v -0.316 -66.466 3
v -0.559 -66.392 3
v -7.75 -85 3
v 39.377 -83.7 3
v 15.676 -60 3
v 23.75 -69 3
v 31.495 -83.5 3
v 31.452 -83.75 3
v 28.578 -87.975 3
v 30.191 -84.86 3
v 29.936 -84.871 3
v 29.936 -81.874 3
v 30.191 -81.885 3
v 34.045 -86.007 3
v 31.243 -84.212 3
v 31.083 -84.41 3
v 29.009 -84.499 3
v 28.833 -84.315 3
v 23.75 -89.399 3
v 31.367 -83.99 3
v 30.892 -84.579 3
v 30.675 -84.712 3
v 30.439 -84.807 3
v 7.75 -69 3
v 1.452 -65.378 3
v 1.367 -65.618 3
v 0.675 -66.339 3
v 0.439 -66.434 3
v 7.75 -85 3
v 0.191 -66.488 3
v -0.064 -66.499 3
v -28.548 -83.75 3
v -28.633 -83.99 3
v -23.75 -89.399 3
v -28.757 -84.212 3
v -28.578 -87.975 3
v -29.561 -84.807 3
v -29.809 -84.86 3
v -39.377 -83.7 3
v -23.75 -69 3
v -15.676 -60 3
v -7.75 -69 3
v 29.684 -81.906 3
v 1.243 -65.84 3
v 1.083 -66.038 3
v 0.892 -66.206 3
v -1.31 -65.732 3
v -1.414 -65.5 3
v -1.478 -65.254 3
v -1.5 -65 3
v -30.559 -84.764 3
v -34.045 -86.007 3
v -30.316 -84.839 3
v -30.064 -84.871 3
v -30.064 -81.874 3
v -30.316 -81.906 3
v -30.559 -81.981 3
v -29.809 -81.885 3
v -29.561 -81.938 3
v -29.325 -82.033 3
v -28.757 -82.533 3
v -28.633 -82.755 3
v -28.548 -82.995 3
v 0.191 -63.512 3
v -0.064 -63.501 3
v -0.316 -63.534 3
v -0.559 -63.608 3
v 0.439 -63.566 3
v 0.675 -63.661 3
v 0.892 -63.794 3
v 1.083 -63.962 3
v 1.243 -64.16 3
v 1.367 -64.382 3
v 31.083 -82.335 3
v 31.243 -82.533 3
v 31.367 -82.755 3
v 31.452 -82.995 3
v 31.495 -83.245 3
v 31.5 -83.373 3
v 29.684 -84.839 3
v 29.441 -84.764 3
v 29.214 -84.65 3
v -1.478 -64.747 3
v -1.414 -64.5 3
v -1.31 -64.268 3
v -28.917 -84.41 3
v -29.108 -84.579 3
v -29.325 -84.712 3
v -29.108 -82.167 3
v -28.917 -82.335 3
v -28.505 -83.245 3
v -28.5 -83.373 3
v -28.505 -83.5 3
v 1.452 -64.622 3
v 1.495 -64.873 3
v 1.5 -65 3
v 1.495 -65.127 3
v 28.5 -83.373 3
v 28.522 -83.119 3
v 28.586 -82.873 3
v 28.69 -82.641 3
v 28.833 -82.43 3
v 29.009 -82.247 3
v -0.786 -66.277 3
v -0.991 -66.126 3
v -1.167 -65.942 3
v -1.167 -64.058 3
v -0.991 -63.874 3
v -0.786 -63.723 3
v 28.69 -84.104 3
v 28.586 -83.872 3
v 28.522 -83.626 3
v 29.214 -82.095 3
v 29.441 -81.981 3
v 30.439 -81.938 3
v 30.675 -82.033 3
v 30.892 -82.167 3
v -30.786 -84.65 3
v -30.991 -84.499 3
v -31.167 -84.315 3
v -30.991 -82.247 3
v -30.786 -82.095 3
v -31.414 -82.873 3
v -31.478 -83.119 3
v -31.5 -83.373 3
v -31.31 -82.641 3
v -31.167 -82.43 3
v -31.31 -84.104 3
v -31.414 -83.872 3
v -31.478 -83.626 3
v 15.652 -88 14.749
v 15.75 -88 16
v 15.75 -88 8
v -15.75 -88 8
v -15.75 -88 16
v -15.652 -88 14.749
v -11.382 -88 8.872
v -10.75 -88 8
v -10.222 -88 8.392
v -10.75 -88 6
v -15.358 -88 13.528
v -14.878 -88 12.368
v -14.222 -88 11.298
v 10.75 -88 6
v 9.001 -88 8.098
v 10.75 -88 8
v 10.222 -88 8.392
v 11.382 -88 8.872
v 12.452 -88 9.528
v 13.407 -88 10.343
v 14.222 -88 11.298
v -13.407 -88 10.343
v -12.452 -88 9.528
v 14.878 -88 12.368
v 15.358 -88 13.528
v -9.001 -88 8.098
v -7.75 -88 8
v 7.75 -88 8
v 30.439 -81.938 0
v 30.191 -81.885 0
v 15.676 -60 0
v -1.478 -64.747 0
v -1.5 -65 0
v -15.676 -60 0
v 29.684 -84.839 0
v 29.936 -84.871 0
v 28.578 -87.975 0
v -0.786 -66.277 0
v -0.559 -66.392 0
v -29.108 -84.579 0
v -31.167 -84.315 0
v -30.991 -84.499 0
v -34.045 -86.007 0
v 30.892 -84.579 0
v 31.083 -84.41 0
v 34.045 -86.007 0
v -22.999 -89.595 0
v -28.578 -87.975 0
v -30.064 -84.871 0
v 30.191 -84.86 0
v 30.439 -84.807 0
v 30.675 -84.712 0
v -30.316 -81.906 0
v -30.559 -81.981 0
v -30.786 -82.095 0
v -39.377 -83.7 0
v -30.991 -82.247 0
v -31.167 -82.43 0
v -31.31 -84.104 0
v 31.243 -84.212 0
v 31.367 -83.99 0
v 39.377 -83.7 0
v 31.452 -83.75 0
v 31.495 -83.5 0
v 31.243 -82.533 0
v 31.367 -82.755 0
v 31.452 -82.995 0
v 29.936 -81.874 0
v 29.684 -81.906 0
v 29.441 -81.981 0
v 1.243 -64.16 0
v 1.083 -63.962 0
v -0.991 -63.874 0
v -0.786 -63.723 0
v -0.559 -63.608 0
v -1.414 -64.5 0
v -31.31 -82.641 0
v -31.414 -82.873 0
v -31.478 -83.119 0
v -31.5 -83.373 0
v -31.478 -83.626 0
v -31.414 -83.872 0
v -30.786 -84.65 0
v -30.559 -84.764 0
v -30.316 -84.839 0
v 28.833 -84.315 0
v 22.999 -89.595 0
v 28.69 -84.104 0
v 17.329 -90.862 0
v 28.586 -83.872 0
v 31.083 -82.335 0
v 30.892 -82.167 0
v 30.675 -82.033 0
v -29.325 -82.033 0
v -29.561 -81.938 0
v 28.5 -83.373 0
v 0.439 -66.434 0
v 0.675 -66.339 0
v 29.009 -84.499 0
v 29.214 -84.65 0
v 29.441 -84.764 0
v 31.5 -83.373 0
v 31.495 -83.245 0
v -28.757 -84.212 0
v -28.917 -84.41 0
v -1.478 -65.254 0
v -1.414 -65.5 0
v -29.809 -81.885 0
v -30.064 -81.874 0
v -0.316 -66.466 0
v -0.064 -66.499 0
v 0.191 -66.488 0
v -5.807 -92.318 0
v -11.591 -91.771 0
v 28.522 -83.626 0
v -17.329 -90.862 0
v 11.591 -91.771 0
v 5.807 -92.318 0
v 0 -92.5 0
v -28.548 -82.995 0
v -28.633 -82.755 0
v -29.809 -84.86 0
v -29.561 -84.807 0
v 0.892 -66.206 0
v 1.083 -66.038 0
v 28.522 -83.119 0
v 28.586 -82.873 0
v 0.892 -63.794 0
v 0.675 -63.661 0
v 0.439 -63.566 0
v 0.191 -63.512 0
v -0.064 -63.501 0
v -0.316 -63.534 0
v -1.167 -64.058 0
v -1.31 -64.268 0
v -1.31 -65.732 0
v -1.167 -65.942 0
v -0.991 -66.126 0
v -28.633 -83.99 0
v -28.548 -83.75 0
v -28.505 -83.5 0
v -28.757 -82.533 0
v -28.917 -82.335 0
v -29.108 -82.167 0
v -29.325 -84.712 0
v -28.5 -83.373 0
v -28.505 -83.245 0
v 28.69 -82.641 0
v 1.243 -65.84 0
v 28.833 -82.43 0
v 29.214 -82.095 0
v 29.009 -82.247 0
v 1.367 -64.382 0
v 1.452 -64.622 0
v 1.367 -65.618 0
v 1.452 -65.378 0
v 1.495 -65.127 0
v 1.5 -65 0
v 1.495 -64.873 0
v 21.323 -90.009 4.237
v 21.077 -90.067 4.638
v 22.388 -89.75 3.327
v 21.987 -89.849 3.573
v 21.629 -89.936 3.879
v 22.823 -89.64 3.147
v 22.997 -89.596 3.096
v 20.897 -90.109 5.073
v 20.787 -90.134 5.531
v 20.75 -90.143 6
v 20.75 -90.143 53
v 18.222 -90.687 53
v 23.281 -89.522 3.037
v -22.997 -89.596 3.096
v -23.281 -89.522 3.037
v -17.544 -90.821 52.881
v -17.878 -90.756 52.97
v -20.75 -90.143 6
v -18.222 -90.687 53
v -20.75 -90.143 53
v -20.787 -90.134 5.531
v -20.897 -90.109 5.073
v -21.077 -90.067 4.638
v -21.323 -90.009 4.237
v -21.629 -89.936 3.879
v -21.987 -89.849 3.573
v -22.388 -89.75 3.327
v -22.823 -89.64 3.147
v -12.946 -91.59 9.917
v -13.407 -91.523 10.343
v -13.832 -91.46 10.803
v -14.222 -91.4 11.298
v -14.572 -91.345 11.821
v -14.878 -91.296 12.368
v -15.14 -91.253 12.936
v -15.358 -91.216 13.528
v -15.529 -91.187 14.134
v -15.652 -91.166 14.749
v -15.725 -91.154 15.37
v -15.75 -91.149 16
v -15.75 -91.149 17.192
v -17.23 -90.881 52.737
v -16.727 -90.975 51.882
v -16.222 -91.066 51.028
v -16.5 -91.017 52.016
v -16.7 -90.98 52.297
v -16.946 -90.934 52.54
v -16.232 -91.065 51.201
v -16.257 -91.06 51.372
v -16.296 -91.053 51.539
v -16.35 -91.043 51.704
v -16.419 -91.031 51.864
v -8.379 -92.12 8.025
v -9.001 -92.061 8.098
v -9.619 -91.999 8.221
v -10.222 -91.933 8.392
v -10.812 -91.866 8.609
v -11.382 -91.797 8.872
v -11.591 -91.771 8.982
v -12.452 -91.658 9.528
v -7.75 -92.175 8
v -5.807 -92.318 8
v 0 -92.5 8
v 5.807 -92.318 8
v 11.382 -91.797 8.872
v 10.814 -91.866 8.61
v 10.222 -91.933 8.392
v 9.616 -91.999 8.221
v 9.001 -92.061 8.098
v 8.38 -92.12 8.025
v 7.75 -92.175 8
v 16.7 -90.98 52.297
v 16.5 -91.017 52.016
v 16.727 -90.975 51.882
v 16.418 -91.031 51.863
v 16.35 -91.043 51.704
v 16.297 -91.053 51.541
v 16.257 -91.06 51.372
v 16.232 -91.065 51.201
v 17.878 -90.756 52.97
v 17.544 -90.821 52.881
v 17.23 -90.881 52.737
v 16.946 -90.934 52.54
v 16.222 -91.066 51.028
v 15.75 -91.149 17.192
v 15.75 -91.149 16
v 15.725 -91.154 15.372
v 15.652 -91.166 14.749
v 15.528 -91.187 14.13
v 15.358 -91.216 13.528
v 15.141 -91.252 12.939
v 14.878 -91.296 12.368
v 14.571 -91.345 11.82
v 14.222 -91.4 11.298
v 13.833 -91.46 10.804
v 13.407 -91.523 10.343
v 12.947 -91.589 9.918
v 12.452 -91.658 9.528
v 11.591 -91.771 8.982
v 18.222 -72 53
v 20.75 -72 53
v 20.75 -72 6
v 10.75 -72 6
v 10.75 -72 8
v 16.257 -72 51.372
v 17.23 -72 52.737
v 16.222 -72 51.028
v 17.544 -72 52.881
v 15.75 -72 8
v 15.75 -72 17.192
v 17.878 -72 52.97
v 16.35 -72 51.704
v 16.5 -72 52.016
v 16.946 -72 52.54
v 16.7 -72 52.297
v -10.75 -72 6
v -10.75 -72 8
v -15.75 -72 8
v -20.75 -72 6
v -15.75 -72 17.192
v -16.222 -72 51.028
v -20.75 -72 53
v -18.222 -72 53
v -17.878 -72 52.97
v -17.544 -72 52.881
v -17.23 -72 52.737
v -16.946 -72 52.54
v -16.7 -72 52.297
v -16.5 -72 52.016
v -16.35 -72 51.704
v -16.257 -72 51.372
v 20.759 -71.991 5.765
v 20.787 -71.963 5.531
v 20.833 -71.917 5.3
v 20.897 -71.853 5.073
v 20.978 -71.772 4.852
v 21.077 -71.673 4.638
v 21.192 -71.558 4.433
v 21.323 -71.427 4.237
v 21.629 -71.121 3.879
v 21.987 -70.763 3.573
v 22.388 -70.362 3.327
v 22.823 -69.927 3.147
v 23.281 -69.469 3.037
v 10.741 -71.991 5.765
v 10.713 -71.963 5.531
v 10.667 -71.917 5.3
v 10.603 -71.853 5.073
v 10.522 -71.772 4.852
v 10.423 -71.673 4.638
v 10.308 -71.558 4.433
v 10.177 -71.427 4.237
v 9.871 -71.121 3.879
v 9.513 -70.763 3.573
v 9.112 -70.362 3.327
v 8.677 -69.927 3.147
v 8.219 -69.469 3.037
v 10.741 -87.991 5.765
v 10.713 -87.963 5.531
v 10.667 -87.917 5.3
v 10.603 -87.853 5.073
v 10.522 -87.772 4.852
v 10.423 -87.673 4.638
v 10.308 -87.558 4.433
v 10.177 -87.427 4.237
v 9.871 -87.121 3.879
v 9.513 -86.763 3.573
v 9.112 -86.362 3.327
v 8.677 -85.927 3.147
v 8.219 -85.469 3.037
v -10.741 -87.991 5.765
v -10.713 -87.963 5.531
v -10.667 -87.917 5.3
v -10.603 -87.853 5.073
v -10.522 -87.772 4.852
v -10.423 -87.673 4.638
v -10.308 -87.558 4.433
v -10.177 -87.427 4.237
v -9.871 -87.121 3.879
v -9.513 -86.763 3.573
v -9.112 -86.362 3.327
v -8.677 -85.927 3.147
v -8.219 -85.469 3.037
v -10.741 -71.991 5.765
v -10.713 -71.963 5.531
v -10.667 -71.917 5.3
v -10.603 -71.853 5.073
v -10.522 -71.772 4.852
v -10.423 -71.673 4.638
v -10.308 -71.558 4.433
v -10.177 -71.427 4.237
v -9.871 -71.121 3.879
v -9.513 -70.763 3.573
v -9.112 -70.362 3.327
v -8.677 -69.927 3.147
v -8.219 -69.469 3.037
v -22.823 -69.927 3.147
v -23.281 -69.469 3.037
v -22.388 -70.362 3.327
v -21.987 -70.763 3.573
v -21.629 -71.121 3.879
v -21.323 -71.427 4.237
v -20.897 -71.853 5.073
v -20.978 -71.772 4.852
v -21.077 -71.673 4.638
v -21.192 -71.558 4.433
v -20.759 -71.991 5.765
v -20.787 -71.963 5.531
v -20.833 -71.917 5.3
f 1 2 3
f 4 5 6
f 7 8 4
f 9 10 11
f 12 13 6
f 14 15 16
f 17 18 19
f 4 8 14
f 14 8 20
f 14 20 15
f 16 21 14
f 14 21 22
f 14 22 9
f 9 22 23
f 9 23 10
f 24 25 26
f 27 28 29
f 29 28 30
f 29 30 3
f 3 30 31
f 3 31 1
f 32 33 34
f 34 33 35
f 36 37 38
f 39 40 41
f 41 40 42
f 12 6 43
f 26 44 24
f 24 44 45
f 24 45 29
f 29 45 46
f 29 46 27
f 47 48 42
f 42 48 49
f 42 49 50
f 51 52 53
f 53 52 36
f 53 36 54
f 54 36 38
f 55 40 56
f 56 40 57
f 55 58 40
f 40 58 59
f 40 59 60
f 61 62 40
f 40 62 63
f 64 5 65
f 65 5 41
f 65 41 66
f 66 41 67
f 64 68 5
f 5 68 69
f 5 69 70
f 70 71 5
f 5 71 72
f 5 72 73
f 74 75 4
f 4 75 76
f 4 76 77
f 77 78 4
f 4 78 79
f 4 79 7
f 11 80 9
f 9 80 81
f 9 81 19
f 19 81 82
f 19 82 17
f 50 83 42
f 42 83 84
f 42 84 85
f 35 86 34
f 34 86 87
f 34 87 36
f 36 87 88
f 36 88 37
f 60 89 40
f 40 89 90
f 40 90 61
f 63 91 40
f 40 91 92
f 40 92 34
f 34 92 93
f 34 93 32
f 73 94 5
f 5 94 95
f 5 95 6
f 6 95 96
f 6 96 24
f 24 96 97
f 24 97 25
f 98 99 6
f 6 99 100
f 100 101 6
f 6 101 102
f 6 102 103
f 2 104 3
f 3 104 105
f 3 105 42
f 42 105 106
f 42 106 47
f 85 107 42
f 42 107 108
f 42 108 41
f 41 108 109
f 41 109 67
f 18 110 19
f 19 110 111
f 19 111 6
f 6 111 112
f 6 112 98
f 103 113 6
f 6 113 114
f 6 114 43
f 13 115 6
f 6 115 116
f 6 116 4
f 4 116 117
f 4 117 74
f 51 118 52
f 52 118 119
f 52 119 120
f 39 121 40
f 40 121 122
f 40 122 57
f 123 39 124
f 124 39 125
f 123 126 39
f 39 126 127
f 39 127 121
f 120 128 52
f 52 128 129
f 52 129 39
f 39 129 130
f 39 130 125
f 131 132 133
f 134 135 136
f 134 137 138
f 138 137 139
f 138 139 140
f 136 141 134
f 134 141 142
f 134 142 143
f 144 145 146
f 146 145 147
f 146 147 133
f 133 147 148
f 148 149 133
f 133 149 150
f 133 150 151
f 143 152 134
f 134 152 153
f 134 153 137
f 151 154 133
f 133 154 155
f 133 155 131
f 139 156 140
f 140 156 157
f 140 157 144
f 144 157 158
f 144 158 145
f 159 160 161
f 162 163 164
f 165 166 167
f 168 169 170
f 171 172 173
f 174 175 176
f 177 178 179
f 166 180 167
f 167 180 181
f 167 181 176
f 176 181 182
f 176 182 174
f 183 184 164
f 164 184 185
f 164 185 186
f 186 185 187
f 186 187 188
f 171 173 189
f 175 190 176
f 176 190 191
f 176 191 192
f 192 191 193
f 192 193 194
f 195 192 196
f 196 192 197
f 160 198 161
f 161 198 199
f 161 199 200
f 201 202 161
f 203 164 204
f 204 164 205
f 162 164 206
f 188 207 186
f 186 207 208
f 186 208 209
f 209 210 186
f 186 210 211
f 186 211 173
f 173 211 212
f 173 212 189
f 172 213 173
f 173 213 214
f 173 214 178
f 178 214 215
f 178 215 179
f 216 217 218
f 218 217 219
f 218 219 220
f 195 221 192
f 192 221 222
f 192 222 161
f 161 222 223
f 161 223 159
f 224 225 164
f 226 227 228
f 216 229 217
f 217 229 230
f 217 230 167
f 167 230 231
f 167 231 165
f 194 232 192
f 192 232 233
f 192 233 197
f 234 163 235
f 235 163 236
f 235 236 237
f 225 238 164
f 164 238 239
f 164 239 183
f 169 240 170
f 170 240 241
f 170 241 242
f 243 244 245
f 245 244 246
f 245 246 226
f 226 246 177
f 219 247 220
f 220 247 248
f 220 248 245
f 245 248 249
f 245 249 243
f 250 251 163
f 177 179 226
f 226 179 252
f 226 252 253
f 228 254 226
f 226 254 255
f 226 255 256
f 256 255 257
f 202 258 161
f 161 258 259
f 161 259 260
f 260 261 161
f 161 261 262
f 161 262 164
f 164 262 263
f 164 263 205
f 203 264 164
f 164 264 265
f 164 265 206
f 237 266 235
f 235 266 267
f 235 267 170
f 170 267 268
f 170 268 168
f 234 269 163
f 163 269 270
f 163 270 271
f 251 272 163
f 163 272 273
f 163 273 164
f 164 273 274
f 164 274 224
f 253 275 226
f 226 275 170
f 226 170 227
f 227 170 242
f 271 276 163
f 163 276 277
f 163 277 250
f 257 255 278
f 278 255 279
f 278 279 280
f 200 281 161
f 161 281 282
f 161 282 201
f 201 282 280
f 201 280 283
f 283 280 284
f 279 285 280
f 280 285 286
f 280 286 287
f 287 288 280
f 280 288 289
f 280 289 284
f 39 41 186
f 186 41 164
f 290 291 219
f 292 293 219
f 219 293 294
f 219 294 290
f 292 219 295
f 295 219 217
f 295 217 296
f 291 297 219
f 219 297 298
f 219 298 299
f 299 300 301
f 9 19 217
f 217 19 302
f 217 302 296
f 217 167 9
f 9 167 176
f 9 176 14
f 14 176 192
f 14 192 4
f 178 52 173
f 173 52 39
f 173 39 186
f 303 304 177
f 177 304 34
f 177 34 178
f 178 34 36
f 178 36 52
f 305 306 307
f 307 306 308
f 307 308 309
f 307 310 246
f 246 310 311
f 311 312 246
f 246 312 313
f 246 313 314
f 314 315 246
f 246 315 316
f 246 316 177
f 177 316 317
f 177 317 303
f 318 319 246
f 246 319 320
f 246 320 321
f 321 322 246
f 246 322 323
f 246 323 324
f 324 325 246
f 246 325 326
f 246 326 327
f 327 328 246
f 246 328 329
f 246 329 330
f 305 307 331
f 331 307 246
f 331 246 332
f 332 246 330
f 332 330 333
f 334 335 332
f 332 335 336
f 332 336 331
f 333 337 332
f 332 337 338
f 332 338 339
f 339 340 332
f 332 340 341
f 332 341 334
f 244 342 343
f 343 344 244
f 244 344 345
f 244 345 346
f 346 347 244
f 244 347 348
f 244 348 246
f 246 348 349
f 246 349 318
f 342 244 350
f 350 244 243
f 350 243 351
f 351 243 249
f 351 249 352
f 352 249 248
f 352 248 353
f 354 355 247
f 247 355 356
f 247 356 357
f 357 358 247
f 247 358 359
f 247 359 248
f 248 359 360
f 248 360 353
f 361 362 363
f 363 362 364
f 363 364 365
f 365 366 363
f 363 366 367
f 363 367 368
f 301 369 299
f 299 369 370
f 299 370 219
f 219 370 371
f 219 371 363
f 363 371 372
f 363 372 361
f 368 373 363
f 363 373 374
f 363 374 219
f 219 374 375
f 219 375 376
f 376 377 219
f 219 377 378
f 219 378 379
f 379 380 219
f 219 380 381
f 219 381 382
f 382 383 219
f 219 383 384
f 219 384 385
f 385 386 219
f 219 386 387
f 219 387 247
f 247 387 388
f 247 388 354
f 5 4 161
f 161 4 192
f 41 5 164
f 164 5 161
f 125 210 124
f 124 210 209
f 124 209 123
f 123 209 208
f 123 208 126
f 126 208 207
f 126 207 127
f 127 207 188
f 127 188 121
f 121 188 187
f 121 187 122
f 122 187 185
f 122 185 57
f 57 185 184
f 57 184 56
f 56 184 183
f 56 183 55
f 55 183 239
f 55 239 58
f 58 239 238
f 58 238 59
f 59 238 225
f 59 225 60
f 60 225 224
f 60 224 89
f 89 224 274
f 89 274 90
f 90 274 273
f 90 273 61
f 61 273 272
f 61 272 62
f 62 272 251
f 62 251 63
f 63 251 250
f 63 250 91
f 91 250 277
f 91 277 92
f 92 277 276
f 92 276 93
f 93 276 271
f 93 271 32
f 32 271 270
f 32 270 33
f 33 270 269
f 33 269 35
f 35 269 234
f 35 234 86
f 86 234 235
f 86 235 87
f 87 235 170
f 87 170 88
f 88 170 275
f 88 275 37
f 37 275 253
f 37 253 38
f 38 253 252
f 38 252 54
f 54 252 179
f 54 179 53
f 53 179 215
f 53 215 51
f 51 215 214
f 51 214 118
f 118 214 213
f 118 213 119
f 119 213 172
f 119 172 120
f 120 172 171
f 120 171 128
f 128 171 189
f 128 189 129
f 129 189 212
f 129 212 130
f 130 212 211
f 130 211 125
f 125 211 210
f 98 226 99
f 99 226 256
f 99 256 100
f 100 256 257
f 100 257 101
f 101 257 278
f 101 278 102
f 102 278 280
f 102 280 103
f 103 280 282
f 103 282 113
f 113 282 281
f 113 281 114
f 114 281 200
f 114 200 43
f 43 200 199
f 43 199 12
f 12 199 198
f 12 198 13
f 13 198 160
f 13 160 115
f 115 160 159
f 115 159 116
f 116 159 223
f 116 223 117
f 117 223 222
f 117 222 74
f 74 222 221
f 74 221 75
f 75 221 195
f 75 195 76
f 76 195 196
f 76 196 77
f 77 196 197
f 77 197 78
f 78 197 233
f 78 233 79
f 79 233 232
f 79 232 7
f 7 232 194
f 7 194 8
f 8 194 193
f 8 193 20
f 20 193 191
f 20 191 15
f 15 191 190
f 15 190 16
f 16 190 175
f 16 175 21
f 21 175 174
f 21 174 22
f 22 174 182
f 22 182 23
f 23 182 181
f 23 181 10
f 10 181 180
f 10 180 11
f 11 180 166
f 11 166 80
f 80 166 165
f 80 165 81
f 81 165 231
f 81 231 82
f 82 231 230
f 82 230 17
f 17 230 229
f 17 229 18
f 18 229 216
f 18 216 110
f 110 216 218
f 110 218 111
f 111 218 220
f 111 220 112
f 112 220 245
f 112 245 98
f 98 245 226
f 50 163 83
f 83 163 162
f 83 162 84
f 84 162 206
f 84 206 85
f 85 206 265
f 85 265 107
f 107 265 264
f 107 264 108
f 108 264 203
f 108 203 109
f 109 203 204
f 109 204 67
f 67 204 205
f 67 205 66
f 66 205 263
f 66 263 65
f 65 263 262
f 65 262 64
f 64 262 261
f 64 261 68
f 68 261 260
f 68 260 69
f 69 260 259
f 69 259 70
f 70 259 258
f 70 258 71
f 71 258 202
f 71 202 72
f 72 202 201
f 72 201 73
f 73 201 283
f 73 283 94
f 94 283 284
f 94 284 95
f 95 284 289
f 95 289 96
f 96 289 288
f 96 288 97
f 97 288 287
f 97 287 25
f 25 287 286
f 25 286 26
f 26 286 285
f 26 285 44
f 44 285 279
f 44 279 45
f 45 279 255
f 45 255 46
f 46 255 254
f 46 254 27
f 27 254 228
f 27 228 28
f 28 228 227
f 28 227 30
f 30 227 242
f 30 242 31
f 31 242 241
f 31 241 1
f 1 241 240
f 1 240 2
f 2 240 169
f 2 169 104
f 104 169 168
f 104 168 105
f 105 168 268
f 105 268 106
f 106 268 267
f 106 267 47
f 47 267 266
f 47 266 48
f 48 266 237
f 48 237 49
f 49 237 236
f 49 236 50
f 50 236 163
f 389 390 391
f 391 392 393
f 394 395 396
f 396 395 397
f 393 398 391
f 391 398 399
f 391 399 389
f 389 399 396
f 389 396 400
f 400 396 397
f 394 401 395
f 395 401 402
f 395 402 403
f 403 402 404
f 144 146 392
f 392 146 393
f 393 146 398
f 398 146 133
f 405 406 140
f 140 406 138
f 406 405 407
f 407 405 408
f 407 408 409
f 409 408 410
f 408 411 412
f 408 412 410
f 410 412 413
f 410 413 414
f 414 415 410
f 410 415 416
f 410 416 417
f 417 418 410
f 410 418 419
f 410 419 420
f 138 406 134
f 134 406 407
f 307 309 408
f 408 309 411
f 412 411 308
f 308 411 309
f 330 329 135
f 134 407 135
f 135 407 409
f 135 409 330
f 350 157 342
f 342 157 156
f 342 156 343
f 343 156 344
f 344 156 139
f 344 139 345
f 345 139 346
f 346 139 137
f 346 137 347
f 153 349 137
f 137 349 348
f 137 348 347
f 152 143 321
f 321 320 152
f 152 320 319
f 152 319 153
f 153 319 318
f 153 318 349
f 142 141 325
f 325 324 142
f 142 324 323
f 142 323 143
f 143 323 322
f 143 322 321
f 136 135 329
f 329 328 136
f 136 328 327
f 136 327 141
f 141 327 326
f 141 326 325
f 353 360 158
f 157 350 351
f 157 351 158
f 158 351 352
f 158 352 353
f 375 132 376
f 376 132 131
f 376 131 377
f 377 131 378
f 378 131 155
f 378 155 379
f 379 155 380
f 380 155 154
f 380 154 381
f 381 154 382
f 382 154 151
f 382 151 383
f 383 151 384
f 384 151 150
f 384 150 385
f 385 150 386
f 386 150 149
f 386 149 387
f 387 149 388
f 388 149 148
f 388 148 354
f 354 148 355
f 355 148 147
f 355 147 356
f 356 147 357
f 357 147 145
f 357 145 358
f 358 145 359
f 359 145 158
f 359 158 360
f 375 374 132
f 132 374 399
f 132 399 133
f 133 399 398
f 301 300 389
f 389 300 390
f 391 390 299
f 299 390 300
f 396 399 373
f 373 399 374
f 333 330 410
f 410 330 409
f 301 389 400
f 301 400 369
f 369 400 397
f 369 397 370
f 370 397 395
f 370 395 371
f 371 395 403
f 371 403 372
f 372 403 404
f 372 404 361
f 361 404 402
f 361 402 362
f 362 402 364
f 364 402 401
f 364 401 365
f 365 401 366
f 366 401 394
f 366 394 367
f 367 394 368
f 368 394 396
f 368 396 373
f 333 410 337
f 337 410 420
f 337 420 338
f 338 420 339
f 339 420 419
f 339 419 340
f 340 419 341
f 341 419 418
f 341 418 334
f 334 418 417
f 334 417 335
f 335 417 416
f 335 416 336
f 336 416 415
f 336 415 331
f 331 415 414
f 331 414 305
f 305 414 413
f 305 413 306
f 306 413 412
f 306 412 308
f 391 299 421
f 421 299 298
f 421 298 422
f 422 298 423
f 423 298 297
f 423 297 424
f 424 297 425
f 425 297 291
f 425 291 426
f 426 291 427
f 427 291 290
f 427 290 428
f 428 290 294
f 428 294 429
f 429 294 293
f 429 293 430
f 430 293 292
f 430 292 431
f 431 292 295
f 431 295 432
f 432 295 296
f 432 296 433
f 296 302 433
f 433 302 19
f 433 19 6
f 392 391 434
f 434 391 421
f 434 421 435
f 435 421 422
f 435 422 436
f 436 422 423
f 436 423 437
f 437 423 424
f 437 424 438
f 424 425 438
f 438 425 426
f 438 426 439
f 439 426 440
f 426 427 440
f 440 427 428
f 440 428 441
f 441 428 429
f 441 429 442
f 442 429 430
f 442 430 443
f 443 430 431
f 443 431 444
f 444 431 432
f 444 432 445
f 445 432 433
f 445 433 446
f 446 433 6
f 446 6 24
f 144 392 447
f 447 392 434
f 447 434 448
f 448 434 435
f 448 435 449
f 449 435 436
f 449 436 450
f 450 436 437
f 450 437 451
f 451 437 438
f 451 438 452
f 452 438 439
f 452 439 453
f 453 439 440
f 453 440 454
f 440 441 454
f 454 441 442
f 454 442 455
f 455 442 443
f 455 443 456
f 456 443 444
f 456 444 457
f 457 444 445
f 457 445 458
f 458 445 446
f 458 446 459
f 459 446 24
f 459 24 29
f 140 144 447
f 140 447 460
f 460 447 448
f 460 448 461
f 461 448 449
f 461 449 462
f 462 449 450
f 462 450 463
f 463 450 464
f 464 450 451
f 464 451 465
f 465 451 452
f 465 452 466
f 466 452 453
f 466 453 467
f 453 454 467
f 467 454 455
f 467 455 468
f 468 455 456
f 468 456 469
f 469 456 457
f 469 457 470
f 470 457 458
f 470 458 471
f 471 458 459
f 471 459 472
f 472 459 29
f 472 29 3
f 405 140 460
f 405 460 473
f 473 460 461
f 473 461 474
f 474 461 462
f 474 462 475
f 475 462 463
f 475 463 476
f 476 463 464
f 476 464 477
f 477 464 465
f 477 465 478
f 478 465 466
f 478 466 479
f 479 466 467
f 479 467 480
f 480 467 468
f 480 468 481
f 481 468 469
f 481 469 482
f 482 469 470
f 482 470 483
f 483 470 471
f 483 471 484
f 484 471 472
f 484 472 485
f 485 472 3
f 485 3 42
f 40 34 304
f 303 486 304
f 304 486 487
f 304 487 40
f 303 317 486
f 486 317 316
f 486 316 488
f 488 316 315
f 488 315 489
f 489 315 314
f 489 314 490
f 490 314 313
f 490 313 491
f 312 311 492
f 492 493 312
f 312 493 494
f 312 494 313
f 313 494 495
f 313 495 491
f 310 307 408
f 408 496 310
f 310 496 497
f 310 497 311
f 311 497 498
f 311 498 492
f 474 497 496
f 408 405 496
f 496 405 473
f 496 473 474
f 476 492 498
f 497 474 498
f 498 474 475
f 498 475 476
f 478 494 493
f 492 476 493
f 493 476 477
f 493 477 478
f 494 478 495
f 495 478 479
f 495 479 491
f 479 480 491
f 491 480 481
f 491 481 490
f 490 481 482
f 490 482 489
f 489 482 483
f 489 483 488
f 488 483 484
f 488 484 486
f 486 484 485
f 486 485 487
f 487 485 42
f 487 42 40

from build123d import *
from OCP.BRepFilletAPI import BRepFilletAPI_MakeChamfer

# Parameters (mm, degrees)
CROQUIS1_R                   = 1.5
SALIENTE_EXTRUIR1_DEPTH      = 3
SALIENTE_EXTRUIR2_DEPTH      = 5
SALIENTE_EXTRUIR3_REACH      = 50.975
SALIENTE_EXTRUIR3_END_RADIUS = 92.5
CROQUIS5_W                   = 5
CROQUIS5_H                   = 50
SALIENTE_EXTRUIR4_DEPTH      = 16
CHAFL_N1_SIZE                = 0.5
CHAFL_N1_SIZE2               = 35.80753506
REDONDEO1_R                  = 2
REDONDEO2_R                  = 3


with BuildPart() as part:
    # Croquis1 → Saliente-Extruir1 (new body)
    with BuildSketch(Plane.XY):
        with BuildLine():
            Line((15.676377407, -60), (-15.676377407, -60))
            Line((-15.676377407, -60), (-39.376624823, -83.700247416))
            ThreePointArc((-39.376624823, -83.700247416), (0, -92.5), (39.376624823, -83.700247416))
            Line((39.376624823, -83.700247416), (15.676377407, -60))
        make_face()
        with Locations((-30, -83.372525695)):
            Circle(CROQUIS1_R, mode=Mode.SUBTRACT)
        with Locations((30, -83.372525695)):
            Circle(CROQUIS1_R, mode=Mode.SUBTRACT)
        with Locations((0, -65)):
            Circle(CROQUIS1_R, mode=Mode.SUBTRACT)
    extrude(amount=SALIENTE_EXTRUIR1_DEPTH)

    # Croquis2 → Saliente-Extruir2 (add)
    with BuildSketch(Plane.XY.offset(3)):
        Polygon((-15.75, -80), (-15.75, -72), (-10.75, -72), (-10.75, -88), (-15.75, -88), align=None)
        Polygon((15.75, -80), (15.75, -88), (10.75, -88), (10.75, -72), (15.75, -72), align=None)
    extrude(amount=SALIENTE_EXTRUIR2_DEPTH)

    # Saliente-Extruir3: up to this cylinder (the profile starts inside it)
    saliente_extruir3_end = Plane(origin=(0, 0, 34.5), z_dir=(0, 0, -1)) * Cylinder(SALIENTE_EXTRUIR3_END_RADIUS, 287.95, mode=Mode.PRIVATE)
    # Croquis4 → Saliente-Extruir3 (add, up to the surface)
    with BuildSketch(Plane.XZ.offset(88), mode=Mode.PRIVATE) as saliente_extruir3_sk1:
        with BuildLine():
            Line((-15.75, 3), (-20.75, 3))
            Line((-20.75, 3), (-20.75, 53))
            Line((-20.75, 53), (-15.75, 53))
            Line((-15.75, 53), (-15.75, 16))
            ThreePointArc((-15.75, 16), (-13.406854249, 10.343145751), (-7.75, 8))
            Line((-7.75, 8), (7.75, 8))
            ThreePointArc((7.75, 8), (13.406854249, 10.343145751), (15.75, 16))
            Line((15.75, 16), (15.75, 53))
            Line((15.75, 53), (20.75, 53))
            Line((20.75, 53), (20.75, 3))
            Line((20.75, 3), (-15.75, 3))
        make_face()
    saliente_extruir3_tool1 = extrude(saliente_extruir3_sk1.sketch, amount=SALIENTE_EXTRUIR3_REACH, mode=Mode.PRIVATE) & saliente_extruir3_end
    add(saliente_extruir3_tool1.solids().sort_by_distance((16.399788, -88, 34.5))[0])

    # Croquis5 → Saliente-Extruir4 (add)
    with BuildSketch(Plane(origin=(0, -88, 0), x_dir=(1, 0, 0), z_dir=(0, 1, 0))):
        with Locations((-18.25, -28)):
            Rectangle(CROQUIS5_W, CROQUIS5_H)
        with Locations((18.25, -28)):
            Rectangle(CROQUIS5_W, CROQUIS5_H)
    extrude(amount=SALIENTE_EXTRUIR4_DEPTH)

    # Chaflán1: one chamfer whose edges measure the first distance from different faces: ONE call of the kernel's chamfer builder (chamfer() names one face for all edges)
    chafl_n1_edges_1 = [part.edges().sort_by_distance(p)[0] for p in [
        (-15.75, -80, 53),
    ]]
    chafl_n1_side_1 = [part.faces().sort_by_distance(p)[0] for p in [
        (-18.25, -80, 53),
    ]]
    chafl_n1_edges_2 = [part.edges().sort_by_distance(p)[0] for p in [
        (15.75, -80, 53),
    ]]
    chafl_n1_side_2 = [part.faces().sort_by_distance(p)[0] for p in [
        (18.25, -80, 53),
    ]]
    chafl_n1 = BRepFilletAPI_MakeChamfer(part.part.solid().wrapped)
    for e in chafl_n1_edges_1:
        chafl_n1.Add(CHAFL_N1_SIZE, CHAFL_N1_SIZE2, e.wrapped, chafl_n1_side_1[0].wrapped)  # the first distance lies on this face
    for e in chafl_n1_edges_2:
        chafl_n1.Add(CHAFL_N1_SIZE, CHAFL_N1_SIZE2, e.wrapped, chafl_n1_side_2[0].wrapped)  # the first distance lies on this face
    add(Compound.cast(chafl_n1.Shape()), mode=Mode.REPLACE)

    # Redondeo1
    redondeo1_edges = [part.edges().sort_by_distance(p)[0] for p in [
        (16.25, -80, 53),
        (-16.25, -80, 53),
    ]]
    fillet(redondeo1_edges, radius=REDONDEO1_R)

    # Redondeo2
    # the kernel refuses this fillet: 3 mm, written as the material it adds along each edge
    with BuildSketch(Plane(origin=(10.75, -72, 3), x_dir=(0, 1, 0), z_dir=(1, 0, 0)), Plane(origin=(-15.75, -72, 3), x_dir=(0, 1, 0), z_dir=(1, 0, 0)), Plane(origin=(-20.75, -72, 3), x_dir=(0, 1, 0), z_dir=(1, 0, 0)), Plane(origin=(15.75, -72, 3), x_dir=(0, 1, 0), z_dir=(1, 0, 0))) as redondeo2_piece_1:
        with BuildLine():
            CenterArc((REDONDEO2_R, REDONDEO2_R), REDONDEO2_R, 180, 90)
            Line((0, REDONDEO2_R), (-REDONDEO2_R * 0.02, REDONDEO2_R))
            Line((-REDONDEO2_R * 0.02, REDONDEO2_R), (-REDONDEO2_R * 0.02, -REDONDEO2_R * 0.02))
            Line((-REDONDEO2_R * 0.02, -REDONDEO2_R * 0.02), (REDONDEO2_R, -REDONDEO2_R * 0.02))
            Line((REDONDEO2_R, -REDONDEO2_R * 0.02), (REDONDEO2_R, 0))
        make_face()
    extrude(amount=5)
    with BuildSketch(Plane(origin=(10.75, -88, 3), x_dir=(-1, 0, 0), z_dir=(0, 1, 0)), Plane(origin=(-10.75, -72, 3), x_dir=(1, 0, 0), z_dir=(0, -1, 0)), Plane(origin=(-20.75, -88, 3), x_dir=(-1, 0, 0), z_dir=(0, 1, 0)), Plane(origin=(20.75, -88, 3), x_dir=(0, 0, 1), z_dir=(0, 1, 0))) as redondeo2_piece_2:
        with BuildLine():
            CenterArc((REDONDEO2_R, REDONDEO2_R), REDONDEO2_R, 180, 90)
            Line((0, REDONDEO2_R), (-REDONDEO2_R * 0.02, REDONDEO2_R))
            Line((-REDONDEO2_R * 0.02, REDONDEO2_R), (-REDONDEO2_R * 0.02, -REDONDEO2_R * 0.02))
            Line((-REDONDEO2_R * 0.02, -REDONDEO2_R * 0.02), (REDONDEO2_R, -REDONDEO2_R * 0.02))
            Line((REDONDEO2_R, -REDONDEO2_R * 0.02), (REDONDEO2_R, 0))
        make_face()
    extrude(amount=16)
    with BuildSketch(Plane(origin=(-10.75, -88, 3), x_dir=(0, 1, 0), z_dir=(1, 0, 0))) as redondeo2_piece_3:
        with BuildLine():
            CenterArc((REDONDEO2_R, REDONDEO2_R), REDONDEO2_R, 180, 90)
            Line((0, REDONDEO2_R), (-REDONDEO2_R * 0.02, REDONDEO2_R))
            Line((-REDONDEO2_R * 0.02, REDONDEO2_R), (-REDONDEO2_R * 0.02, -REDONDEO2_R * 0.02))
            Line((-REDONDEO2_R * 0.02, -REDONDEO2_R * 0.02), (REDONDEO2_R, -REDONDEO2_R * 0.02))
            Line((REDONDEO2_R, -REDONDEO2_R * 0.02), (REDONDEO2_R, 0))
        make_face()
    extrude(amount=21.5)
    with BuildSketch(Plane(origin=(20.75, -88, 3), x_dir=(0, 0, 1), z_dir=(0, -1, 0))) as redondeo2_piece_4_section:
        with BuildLine():
            CenterArc((REDONDEO2_R, -REDONDEO2_R), REDONDEO2_R, 90, 90)
            Line((0, -REDONDEO2_R), (-REDONDEO2_R * 0.02, -REDONDEO2_R))
            Line((-REDONDEO2_R * 0.02, -REDONDEO2_R), (-REDONDEO2_R * 0.02, REDONDEO2_R * 0.02))
            Line((-REDONDEO2_R * 0.02, REDONDEO2_R * 0.02), (REDONDEO2_R, REDONDEO2_R * 0.02))
            Line((REDONDEO2_R, REDONDEO2_R * 0.02), (REDONDEO2_R, 0))
        make_face()
    redondeo2_piece_4 = extrude(amount=9.64259537, mode=Mode.PRIVATE)
    redondeo2_piece_4 = redondeo2_piece_4 & Plane(origin=(0, 0, 3.709191114), x_dir=(-1, 0, 0), z_dir=(0, 0, -1)) * Cylinder(92.5, 32, mode=Mode.PRIVATE)
    add(redondeo2_piece_4)
    with BuildSketch(Plane(origin=(-20.75, -88, 3), x_dir=(0, 0, 1), z_dir=(0, -1, 0))) as redondeo2_piece_5_section:
        with BuildLine():
            CenterArc((REDONDEO2_R, REDONDEO2_R), REDONDEO2_R, 180, 90)
            Line((0, REDONDEO2_R), (-REDONDEO2_R * 0.02, REDONDEO2_R))
            Line((-REDONDEO2_R * 0.02, REDONDEO2_R), (-REDONDEO2_R * 0.02, -REDONDEO2_R * 0.02))
            Line((-REDONDEO2_R * 0.02, -REDONDEO2_R * 0.02), (REDONDEO2_R, -REDONDEO2_R * 0.02))
            Line((REDONDEO2_R, -REDONDEO2_R * 0.02), (REDONDEO2_R, 0))
        make_face()
    redondeo2_piece_5 = extrude(amount=9.64259537, mode=Mode.PRIVATE)
    redondeo2_piece_5 = redondeo2_piece_5 & Plane(origin=(0, 0, 3.709191539), x_dir=(-1, 0, 0), z_dir=(0, 0, -1)) * Cylinder(92.5, 32, mode=Mode.PRIVATE)
    add(redondeo2_piece_5)
    with BuildSketch(Plane(origin=(3.25, -72, 3), x_dir=(0, 1, 0), z_dir=(1, 0, 0))) as redondeo2_piece_6a_section:
        with BuildLine():
            CenterArc((REDONDEO2_R, REDONDEO2_R), REDONDEO2_R, 180, 90)
            Line((0, REDONDEO2_R), (-REDONDEO2_R * 0.02, REDONDEO2_R))
            Line((-REDONDEO2_R * 0.02, REDONDEO2_R), (-REDONDEO2_R * 0.02, -REDONDEO2_R * 0.02))
            Line((-REDONDEO2_R * 0.02, -REDONDEO2_R * 0.02), (REDONDEO2_R, -REDONDEO2_R * 0.02))
            Line((REDONDEO2_R, -REDONDEO2_R * 0.02), (REDONDEO2_R, 0))
        make_face()
    redondeo2_piece_6a = extrude(amount=12.5, mode=Mode.PRIVATE)
    redondeo2_piece_6a = split(redondeo2_piece_6a, bisect_by=Plane(origin=(10.75, -71.320814657, 3.679185343), z_dir=(-1, 0, 0)), keep=Keep.TOP, mode=Mode.PRIVATE)
    with BuildSketch(Plane(origin=(10.75, -88, 3), x_dir=(-1, 0, 0), z_dir=(0, 1, 0))) as redondeo2_piece_6b_section:
        with BuildLine():
            CenterArc((REDONDEO2_R, REDONDEO2_R), REDONDEO2_R, 180, 90)
            Line((0, REDONDEO2_R), (-REDONDEO2_R * 0.02, REDONDEO2_R))
            Line((-REDONDEO2_R * 0.02, REDONDEO2_R), (-REDONDEO2_R * 0.02, -REDONDEO2_R * 0.02))
            Line((-REDONDEO2_R * 0.02, -REDONDEO2_R * 0.02), (REDONDEO2_R, -REDONDEO2_R * 0.02))
            Line((REDONDEO2_R, -REDONDEO2_R * 0.02), (REDONDEO2_R, 0))
        make_face()
    redondeo2_piece_6b = extrude(amount=23.5, mode=Mode.PRIVATE)
    redondeo2_piece_6b = split(redondeo2_piece_6b, bisect_by=Plane(origin=(10.070814657, -72, 3.679185343), z_dir=(0, 1, 0)), keep=Keep.TOP, mode=Mode.PRIVATE)
    redondeo2_piece_6 = redondeo2_piece_6a & redondeo2_piece_6b
    add(redondeo2_piece_6)
    with BuildSketch(Plane(origin=(10.75, -95.5, 3), x_dir=(-1, 0, 0), z_dir=(0, 1, 0))) as redondeo2_piece_7a_section:
        with BuildLine():
            CenterArc((REDONDEO2_R, REDONDEO2_R), REDONDEO2_R, 180, 90)
            Line((0, REDONDEO2_R), (-REDONDEO2_R * 0.02, REDONDEO2_R))
            Line((-REDONDEO2_R * 0.02, REDONDEO2_R), (-REDONDEO2_R * 0.02, -REDONDEO2_R * 0.02))
            Line((-REDONDEO2_R * 0.02, -REDONDEO2_R * 0.02), (REDONDEO2_R, -REDONDEO2_R * 0.02))
            Line((REDONDEO2_R, -REDONDEO2_R * 0.02), (REDONDEO2_R, 0))
        make_face()
    redondeo2_piece_7a = extrude(amount=23.5, mode=Mode.PRIVATE)
    redondeo2_piece_7a = split(redondeo2_piece_7a, bisect_by=Plane(origin=(10.070814657, -88, 3.679185343), z_dir=(0, -1, 0)), keep=Keep.TOP, mode=Mode.PRIVATE)
    with BuildSketch(Plane(origin=(-10.75, -88, 3), x_dir=(0, 1, 0), z_dir=(1, 0, 0))) as redondeo2_piece_7b_section:
        with BuildLine():
            CenterArc((REDONDEO2_R, REDONDEO2_R), REDONDEO2_R, 180, 90)
            Line((0, REDONDEO2_R), (-REDONDEO2_R * 0.02, REDONDEO2_R))
            Line((-REDONDEO2_R * 0.02, REDONDEO2_R), (-REDONDEO2_R * 0.02, -REDONDEO2_R * 0.02))
            Line((-REDONDEO2_R * 0.02, -REDONDEO2_R * 0.02), (REDONDEO2_R, -REDONDEO2_R * 0.02))
            Line((REDONDEO2_R, -REDONDEO2_R * 0.02), (REDONDEO2_R, 0))
        make_face()
    redondeo2_piece_7b = extrude(amount=29, mode=Mode.PRIVATE)
    redondeo2_piece_7b = split(redondeo2_piece_7b, bisect_by=Plane(origin=(10.75, -87.320814657, 3.679185343), z_dir=(1, 0, 0)), keep=Keep.TOP, mode=Mode.PRIVATE)
    redondeo2_piece_7 = redondeo2_piece_7a & redondeo2_piece_7b
    add(redondeo2_piece_7)
    with BuildSketch(Plane(origin=(-10.75, -64.5, 3), x_dir=(1, 0, 0), z_dir=(0, -1, 0))) as redondeo2_piece_8a_section:
        with BuildLine():
            CenterArc((REDONDEO2_R, REDONDEO2_R), REDONDEO2_R, 180, 90)
            Line((0, REDONDEO2_R), (-REDONDEO2_R * 0.02, REDONDEO2_R))
            Line((-REDONDEO2_R * 0.02, REDONDEO2_R), (-REDONDEO2_R * 0.02, -REDONDEO2_R * 0.02))
            Line((-REDONDEO2_R * 0.02, -REDONDEO2_R * 0.02), (REDONDEO2_R, -REDONDEO2_R * 0.02))
            Line((REDONDEO2_R, -REDONDEO2_R * 0.02), (REDONDEO2_R, 0))
        make_face()
    redondeo2_piece_8a = extrude(amount=23.5, mode=Mode.PRIVATE)
    redondeo2_piece_8a = split(redondeo2_piece_8a, bisect_by=Plane(origin=(-10.070814657, -72, 3.679185343), z_dir=(0, 1, 0)), keep=Keep.TOP, mode=Mode.PRIVATE)
    with BuildSketch(Plane(origin=(-15.75, -72, 3), x_dir=(0, 1, 0), z_dir=(1, 0, 0))) as redondeo2_piece_8b_section:
        with BuildLine():
            CenterArc((REDONDEO2_R, REDONDEO2_R), REDONDEO2_R, 180, 90)
            Line((0, REDONDEO2_R), (-REDONDEO2_R * 0.02, REDONDEO2_R))
            Line((-REDONDEO2_R * 0.02, REDONDEO2_R), (-REDONDEO2_R * 0.02, -REDONDEO2_R * 0.02))
            Line((-REDONDEO2_R * 0.02, -REDONDEO2_R * 0.02), (REDONDEO2_R, -REDONDEO2_R * 0.02))
            Line((REDONDEO2_R, -REDONDEO2_R * 0.02), (REDONDEO2_R, 0))
        make_face()
    redondeo2_piece_8b = extrude(amount=12.5, mode=Mode.PRIVATE)
    redondeo2_piece_8b = split(redondeo2_piece_8b, bisect_by=Plane(origin=(-10.75, -71.320814657, 3.679185343), z_dir=(1, 0, 0)), keep=Keep.TOP, mode=Mode.PRIVATE)
    redondeo2_piece_8 = redondeo2_piece_8a & redondeo2_piece_8b
    add(redondeo2_piece_8)
    with BuildSketch(Plane(origin=(-18.25, -88, 3), x_dir=(0, 1, 0), z_dir=(1, 0, 0))) as redondeo2_piece_9a_section:
        with BuildLine():
            CenterArc((REDONDEO2_R, REDONDEO2_R), REDONDEO2_R, 180, 90)
            Line((0, REDONDEO2_R), (-REDONDEO2_R * 0.02, REDONDEO2_R))
            Line((-REDONDEO2_R * 0.02, REDONDEO2_R), (-REDONDEO2_R * 0.02, -REDONDEO2_R * 0.02))
            Line((-REDONDEO2_R * 0.02, -REDONDEO2_R * 0.02), (REDONDEO2_R, -REDONDEO2_R * 0.02))
            Line((REDONDEO2_R, -REDONDEO2_R * 0.02), (REDONDEO2_R, 0))
        make_face()
    redondeo2_piece_9a = extrude(amount=29, mode=Mode.PRIVATE)
    redondeo2_piece_9a = split(redondeo2_piece_9a, bisect_by=Plane(origin=(-10.75, -87.320814657, 3.679185343), z_dir=(-1, 0, 0)), keep=Keep.TOP, mode=Mode.PRIVATE)
    with BuildSketch(Plane(origin=(-10.75, -72, 3), x_dir=(1, 0, 0), z_dir=(0, -1, 0))) as redondeo2_piece_9b_section:
        with BuildLine():
            CenterArc((REDONDEO2_R, REDONDEO2_R), REDONDEO2_R, 180, 90)
            Line((0, REDONDEO2_R), (-REDONDEO2_R * 0.02, REDONDEO2_R))
            Line((-REDONDEO2_R * 0.02, REDONDEO2_R), (-REDONDEO2_R * 0.02, -REDONDEO2_R * 0.02))
            Line((-REDONDEO2_R * 0.02, -REDONDEO2_R * 0.02), (REDONDEO2_R, -REDONDEO2_R * 0.02))
            Line((REDONDEO2_R, -REDONDEO2_R * 0.02), (REDONDEO2_R, 0))
        make_face()
    redondeo2_piece_9b = extrude(amount=23.5, mode=Mode.PRIVATE)
    redondeo2_piece_9b = split(redondeo2_piece_9b, bisect_by=Plane(origin=(-10.070814657, -88, 3.679185343), z_dir=(0, -1, 0)), keep=Keep.TOP, mode=Mode.PRIVATE)
    redondeo2_piece_9 = redondeo2_piece_9a & redondeo2_piece_9b
    add(redondeo2_piece_9)
    with BuildSketch(Plane(origin=(-28.25, -72, 3), x_dir=(0, 1, 0), z_dir=(1, 0, 0))) as redondeo2_piece_10a_section:
        with BuildLine():
            CenterArc((REDONDEO2_R, REDONDEO2_R), REDONDEO2_R, 180, 90)
            Line((0, REDONDEO2_R), (-REDONDEO2_R * 0.02, REDONDEO2_R))
            Line((-REDONDEO2_R * 0.02, REDONDEO2_R), (-REDONDEO2_R * 0.02, -REDONDEO2_R * 0.02))
            Line((-REDONDEO2_R * 0.02, -REDONDEO2_R * 0.02), (REDONDEO2_R, -REDONDEO2_R * 0.02))
            Line((REDONDEO2_R, -REDONDEO2_R * 0.02), (REDONDEO2_R, 0))
        make_face()
    redondeo2_piece_10a = extrude(amount=12.5, mode=Mode.PRIVATE)
    redondeo2_piece_10a = split(redondeo2_piece_10a, bisect_by=Plane(origin=(-25.485611377, -69.809233969, 3.718740777), z_dir=(0.707106781186549, -0.7071067811865461, 0)), keep=Keep.TOP, mode=Mode.PRIVATE)
    redondeo2_piece_10a = split(redondeo2_piece_10a, bisect_by=Plane(origin=(-20.75, -71.387771095, 3.718740777), z_dir=(-1, 0, 0)), keep=Keep.TOP, mode=Mode.PRIVATE)
    with BuildSketch(Plane(origin=(-20.75, -88, 3), x_dir=(-1, 0, 0), z_dir=(0, 1, 0))) as redondeo2_piece_10b_section:
        with BuildLine():
            CenterArc((REDONDEO2_R, REDONDEO2_R), REDONDEO2_R, 180, 90)
            Line((0, REDONDEO2_R), (-REDONDEO2_R * 0.02, REDONDEO2_R))
            Line((-REDONDEO2_R * 0.02, REDONDEO2_R), (-REDONDEO2_R * 0.02, -REDONDEO2_R * 0.02))
            Line((-REDONDEO2_R * 0.02, -REDONDEO2_R * 0.02), (REDONDEO2_R, -REDONDEO2_R * 0.02))
            Line((REDONDEO2_R, -REDONDEO2_R * 0.02), (REDONDEO2_R, 0))
        make_face()
    redondeo2_piece_10b = extrude(amount=23.5, mode=Mode.PRIVATE)
    redondeo2_piece_10b = split(redondeo2_piece_10b, bisect_by=Plane(origin=(-22.940766031, -67.264388623, 3.718740777), z_dir=(0.707106781186549, -0.7071067811865461, 0)), keep=Keep.TOP, mode=Mode.PRIVATE)
    redondeo2_piece_10b = split(redondeo2_piece_10b, bisect_by=Plane(origin=(-21.362228905, -72, 3.718740777), z_dir=(0, 1, 0)), keep=Keep.TOP, mode=Mode.PRIVATE)
    redondeo2_piece_10 = redondeo2_piece_10a & redondeo2_piece_10b
    add(redondeo2_piece_10)
    with BuildSketch(Plane(origin=(20.75, -88, 3), x_dir=(0, 0, 1), z_dir=(0, 1, 0))) as redondeo2_piece_11a_section:
        with BuildLine():
            CenterArc((REDONDEO2_R, REDONDEO2_R), REDONDEO2_R, 180, 90)
            Line((0, REDONDEO2_R), (-REDONDEO2_R * 0.02, REDONDEO2_R))
            Line((-REDONDEO2_R * 0.02, REDONDEO2_R), (-REDONDEO2_R * 0.02, -REDONDEO2_R * 0.02))
            Line((-REDONDEO2_R * 0.02, -REDONDEO2_R * 0.02), (REDONDEO2_R, -REDONDEO2_R * 0.02))
            Line((REDONDEO2_R, -REDONDEO2_R * 0.02), (REDONDEO2_R, 0))
        make_face()
    redondeo2_piece_11a = extrude(amount=23.5, mode=Mode.PRIVATE)
    redondeo2_piece_11a = split(redondeo2_piece_11a, bisect_by=Plane(origin=(21.362228905, -72, 3.718740777), z_dir=(0, 1, 0)), keep=Keep.TOP, mode=Mode.PRIVATE)
    redondeo2_piece_11a = split(redondeo2_piece_11a, bisect_by=Plane(origin=(22.940766031, -67.264388623, 3.718740777), z_dir=(-0.7071067811865434, -0.7071067811865517, 0)), keep=Keep.TOP, mode=Mode.PRIVATE)
    with BuildSketch(Plane(origin=(15.75, -72, 3), x_dir=(0, 1, 0), z_dir=(1, 0, 0))) as redondeo2_piece_11b_section:
        with BuildLine():
            CenterArc((REDONDEO2_R, REDONDEO2_R), REDONDEO2_R, 180, 90)
            Line((0, REDONDEO2_R), (-REDONDEO2_R * 0.02, REDONDEO2_R))
            Line((-REDONDEO2_R * 0.02, REDONDEO2_R), (-REDONDEO2_R * 0.02, -REDONDEO2_R * 0.02))
            Line((-REDONDEO2_R * 0.02, -REDONDEO2_R * 0.02), (REDONDEO2_R, -REDONDEO2_R * 0.02))
            Line((REDONDEO2_R, -REDONDEO2_R * 0.02), (REDONDEO2_R, 0))
        make_face()
    redondeo2_piece_11b = extrude(amount=12.5, mode=Mode.PRIVATE)
    redondeo2_piece_11b = split(redondeo2_piece_11b, bisect_by=Plane(origin=(20.75, -71.387771095, 3.718740777), z_dir=(1, 0, 0)), keep=Keep.TOP, mode=Mode.PRIVATE)
    redondeo2_piece_11b = split(redondeo2_piece_11b, bisect_by=Plane(origin=(25.485611377, -69.809233969, 3.718740777), z_dir=(-0.7071067811865434, -0.7071067811865517, 0)), keep=Keep.TOP, mode=Mode.PRIVATE)
    redondeo2_piece_11 = redondeo2_piece_11a & redondeo2_piece_11b
    add(redondeo2_piece_11)


solid = part.part
